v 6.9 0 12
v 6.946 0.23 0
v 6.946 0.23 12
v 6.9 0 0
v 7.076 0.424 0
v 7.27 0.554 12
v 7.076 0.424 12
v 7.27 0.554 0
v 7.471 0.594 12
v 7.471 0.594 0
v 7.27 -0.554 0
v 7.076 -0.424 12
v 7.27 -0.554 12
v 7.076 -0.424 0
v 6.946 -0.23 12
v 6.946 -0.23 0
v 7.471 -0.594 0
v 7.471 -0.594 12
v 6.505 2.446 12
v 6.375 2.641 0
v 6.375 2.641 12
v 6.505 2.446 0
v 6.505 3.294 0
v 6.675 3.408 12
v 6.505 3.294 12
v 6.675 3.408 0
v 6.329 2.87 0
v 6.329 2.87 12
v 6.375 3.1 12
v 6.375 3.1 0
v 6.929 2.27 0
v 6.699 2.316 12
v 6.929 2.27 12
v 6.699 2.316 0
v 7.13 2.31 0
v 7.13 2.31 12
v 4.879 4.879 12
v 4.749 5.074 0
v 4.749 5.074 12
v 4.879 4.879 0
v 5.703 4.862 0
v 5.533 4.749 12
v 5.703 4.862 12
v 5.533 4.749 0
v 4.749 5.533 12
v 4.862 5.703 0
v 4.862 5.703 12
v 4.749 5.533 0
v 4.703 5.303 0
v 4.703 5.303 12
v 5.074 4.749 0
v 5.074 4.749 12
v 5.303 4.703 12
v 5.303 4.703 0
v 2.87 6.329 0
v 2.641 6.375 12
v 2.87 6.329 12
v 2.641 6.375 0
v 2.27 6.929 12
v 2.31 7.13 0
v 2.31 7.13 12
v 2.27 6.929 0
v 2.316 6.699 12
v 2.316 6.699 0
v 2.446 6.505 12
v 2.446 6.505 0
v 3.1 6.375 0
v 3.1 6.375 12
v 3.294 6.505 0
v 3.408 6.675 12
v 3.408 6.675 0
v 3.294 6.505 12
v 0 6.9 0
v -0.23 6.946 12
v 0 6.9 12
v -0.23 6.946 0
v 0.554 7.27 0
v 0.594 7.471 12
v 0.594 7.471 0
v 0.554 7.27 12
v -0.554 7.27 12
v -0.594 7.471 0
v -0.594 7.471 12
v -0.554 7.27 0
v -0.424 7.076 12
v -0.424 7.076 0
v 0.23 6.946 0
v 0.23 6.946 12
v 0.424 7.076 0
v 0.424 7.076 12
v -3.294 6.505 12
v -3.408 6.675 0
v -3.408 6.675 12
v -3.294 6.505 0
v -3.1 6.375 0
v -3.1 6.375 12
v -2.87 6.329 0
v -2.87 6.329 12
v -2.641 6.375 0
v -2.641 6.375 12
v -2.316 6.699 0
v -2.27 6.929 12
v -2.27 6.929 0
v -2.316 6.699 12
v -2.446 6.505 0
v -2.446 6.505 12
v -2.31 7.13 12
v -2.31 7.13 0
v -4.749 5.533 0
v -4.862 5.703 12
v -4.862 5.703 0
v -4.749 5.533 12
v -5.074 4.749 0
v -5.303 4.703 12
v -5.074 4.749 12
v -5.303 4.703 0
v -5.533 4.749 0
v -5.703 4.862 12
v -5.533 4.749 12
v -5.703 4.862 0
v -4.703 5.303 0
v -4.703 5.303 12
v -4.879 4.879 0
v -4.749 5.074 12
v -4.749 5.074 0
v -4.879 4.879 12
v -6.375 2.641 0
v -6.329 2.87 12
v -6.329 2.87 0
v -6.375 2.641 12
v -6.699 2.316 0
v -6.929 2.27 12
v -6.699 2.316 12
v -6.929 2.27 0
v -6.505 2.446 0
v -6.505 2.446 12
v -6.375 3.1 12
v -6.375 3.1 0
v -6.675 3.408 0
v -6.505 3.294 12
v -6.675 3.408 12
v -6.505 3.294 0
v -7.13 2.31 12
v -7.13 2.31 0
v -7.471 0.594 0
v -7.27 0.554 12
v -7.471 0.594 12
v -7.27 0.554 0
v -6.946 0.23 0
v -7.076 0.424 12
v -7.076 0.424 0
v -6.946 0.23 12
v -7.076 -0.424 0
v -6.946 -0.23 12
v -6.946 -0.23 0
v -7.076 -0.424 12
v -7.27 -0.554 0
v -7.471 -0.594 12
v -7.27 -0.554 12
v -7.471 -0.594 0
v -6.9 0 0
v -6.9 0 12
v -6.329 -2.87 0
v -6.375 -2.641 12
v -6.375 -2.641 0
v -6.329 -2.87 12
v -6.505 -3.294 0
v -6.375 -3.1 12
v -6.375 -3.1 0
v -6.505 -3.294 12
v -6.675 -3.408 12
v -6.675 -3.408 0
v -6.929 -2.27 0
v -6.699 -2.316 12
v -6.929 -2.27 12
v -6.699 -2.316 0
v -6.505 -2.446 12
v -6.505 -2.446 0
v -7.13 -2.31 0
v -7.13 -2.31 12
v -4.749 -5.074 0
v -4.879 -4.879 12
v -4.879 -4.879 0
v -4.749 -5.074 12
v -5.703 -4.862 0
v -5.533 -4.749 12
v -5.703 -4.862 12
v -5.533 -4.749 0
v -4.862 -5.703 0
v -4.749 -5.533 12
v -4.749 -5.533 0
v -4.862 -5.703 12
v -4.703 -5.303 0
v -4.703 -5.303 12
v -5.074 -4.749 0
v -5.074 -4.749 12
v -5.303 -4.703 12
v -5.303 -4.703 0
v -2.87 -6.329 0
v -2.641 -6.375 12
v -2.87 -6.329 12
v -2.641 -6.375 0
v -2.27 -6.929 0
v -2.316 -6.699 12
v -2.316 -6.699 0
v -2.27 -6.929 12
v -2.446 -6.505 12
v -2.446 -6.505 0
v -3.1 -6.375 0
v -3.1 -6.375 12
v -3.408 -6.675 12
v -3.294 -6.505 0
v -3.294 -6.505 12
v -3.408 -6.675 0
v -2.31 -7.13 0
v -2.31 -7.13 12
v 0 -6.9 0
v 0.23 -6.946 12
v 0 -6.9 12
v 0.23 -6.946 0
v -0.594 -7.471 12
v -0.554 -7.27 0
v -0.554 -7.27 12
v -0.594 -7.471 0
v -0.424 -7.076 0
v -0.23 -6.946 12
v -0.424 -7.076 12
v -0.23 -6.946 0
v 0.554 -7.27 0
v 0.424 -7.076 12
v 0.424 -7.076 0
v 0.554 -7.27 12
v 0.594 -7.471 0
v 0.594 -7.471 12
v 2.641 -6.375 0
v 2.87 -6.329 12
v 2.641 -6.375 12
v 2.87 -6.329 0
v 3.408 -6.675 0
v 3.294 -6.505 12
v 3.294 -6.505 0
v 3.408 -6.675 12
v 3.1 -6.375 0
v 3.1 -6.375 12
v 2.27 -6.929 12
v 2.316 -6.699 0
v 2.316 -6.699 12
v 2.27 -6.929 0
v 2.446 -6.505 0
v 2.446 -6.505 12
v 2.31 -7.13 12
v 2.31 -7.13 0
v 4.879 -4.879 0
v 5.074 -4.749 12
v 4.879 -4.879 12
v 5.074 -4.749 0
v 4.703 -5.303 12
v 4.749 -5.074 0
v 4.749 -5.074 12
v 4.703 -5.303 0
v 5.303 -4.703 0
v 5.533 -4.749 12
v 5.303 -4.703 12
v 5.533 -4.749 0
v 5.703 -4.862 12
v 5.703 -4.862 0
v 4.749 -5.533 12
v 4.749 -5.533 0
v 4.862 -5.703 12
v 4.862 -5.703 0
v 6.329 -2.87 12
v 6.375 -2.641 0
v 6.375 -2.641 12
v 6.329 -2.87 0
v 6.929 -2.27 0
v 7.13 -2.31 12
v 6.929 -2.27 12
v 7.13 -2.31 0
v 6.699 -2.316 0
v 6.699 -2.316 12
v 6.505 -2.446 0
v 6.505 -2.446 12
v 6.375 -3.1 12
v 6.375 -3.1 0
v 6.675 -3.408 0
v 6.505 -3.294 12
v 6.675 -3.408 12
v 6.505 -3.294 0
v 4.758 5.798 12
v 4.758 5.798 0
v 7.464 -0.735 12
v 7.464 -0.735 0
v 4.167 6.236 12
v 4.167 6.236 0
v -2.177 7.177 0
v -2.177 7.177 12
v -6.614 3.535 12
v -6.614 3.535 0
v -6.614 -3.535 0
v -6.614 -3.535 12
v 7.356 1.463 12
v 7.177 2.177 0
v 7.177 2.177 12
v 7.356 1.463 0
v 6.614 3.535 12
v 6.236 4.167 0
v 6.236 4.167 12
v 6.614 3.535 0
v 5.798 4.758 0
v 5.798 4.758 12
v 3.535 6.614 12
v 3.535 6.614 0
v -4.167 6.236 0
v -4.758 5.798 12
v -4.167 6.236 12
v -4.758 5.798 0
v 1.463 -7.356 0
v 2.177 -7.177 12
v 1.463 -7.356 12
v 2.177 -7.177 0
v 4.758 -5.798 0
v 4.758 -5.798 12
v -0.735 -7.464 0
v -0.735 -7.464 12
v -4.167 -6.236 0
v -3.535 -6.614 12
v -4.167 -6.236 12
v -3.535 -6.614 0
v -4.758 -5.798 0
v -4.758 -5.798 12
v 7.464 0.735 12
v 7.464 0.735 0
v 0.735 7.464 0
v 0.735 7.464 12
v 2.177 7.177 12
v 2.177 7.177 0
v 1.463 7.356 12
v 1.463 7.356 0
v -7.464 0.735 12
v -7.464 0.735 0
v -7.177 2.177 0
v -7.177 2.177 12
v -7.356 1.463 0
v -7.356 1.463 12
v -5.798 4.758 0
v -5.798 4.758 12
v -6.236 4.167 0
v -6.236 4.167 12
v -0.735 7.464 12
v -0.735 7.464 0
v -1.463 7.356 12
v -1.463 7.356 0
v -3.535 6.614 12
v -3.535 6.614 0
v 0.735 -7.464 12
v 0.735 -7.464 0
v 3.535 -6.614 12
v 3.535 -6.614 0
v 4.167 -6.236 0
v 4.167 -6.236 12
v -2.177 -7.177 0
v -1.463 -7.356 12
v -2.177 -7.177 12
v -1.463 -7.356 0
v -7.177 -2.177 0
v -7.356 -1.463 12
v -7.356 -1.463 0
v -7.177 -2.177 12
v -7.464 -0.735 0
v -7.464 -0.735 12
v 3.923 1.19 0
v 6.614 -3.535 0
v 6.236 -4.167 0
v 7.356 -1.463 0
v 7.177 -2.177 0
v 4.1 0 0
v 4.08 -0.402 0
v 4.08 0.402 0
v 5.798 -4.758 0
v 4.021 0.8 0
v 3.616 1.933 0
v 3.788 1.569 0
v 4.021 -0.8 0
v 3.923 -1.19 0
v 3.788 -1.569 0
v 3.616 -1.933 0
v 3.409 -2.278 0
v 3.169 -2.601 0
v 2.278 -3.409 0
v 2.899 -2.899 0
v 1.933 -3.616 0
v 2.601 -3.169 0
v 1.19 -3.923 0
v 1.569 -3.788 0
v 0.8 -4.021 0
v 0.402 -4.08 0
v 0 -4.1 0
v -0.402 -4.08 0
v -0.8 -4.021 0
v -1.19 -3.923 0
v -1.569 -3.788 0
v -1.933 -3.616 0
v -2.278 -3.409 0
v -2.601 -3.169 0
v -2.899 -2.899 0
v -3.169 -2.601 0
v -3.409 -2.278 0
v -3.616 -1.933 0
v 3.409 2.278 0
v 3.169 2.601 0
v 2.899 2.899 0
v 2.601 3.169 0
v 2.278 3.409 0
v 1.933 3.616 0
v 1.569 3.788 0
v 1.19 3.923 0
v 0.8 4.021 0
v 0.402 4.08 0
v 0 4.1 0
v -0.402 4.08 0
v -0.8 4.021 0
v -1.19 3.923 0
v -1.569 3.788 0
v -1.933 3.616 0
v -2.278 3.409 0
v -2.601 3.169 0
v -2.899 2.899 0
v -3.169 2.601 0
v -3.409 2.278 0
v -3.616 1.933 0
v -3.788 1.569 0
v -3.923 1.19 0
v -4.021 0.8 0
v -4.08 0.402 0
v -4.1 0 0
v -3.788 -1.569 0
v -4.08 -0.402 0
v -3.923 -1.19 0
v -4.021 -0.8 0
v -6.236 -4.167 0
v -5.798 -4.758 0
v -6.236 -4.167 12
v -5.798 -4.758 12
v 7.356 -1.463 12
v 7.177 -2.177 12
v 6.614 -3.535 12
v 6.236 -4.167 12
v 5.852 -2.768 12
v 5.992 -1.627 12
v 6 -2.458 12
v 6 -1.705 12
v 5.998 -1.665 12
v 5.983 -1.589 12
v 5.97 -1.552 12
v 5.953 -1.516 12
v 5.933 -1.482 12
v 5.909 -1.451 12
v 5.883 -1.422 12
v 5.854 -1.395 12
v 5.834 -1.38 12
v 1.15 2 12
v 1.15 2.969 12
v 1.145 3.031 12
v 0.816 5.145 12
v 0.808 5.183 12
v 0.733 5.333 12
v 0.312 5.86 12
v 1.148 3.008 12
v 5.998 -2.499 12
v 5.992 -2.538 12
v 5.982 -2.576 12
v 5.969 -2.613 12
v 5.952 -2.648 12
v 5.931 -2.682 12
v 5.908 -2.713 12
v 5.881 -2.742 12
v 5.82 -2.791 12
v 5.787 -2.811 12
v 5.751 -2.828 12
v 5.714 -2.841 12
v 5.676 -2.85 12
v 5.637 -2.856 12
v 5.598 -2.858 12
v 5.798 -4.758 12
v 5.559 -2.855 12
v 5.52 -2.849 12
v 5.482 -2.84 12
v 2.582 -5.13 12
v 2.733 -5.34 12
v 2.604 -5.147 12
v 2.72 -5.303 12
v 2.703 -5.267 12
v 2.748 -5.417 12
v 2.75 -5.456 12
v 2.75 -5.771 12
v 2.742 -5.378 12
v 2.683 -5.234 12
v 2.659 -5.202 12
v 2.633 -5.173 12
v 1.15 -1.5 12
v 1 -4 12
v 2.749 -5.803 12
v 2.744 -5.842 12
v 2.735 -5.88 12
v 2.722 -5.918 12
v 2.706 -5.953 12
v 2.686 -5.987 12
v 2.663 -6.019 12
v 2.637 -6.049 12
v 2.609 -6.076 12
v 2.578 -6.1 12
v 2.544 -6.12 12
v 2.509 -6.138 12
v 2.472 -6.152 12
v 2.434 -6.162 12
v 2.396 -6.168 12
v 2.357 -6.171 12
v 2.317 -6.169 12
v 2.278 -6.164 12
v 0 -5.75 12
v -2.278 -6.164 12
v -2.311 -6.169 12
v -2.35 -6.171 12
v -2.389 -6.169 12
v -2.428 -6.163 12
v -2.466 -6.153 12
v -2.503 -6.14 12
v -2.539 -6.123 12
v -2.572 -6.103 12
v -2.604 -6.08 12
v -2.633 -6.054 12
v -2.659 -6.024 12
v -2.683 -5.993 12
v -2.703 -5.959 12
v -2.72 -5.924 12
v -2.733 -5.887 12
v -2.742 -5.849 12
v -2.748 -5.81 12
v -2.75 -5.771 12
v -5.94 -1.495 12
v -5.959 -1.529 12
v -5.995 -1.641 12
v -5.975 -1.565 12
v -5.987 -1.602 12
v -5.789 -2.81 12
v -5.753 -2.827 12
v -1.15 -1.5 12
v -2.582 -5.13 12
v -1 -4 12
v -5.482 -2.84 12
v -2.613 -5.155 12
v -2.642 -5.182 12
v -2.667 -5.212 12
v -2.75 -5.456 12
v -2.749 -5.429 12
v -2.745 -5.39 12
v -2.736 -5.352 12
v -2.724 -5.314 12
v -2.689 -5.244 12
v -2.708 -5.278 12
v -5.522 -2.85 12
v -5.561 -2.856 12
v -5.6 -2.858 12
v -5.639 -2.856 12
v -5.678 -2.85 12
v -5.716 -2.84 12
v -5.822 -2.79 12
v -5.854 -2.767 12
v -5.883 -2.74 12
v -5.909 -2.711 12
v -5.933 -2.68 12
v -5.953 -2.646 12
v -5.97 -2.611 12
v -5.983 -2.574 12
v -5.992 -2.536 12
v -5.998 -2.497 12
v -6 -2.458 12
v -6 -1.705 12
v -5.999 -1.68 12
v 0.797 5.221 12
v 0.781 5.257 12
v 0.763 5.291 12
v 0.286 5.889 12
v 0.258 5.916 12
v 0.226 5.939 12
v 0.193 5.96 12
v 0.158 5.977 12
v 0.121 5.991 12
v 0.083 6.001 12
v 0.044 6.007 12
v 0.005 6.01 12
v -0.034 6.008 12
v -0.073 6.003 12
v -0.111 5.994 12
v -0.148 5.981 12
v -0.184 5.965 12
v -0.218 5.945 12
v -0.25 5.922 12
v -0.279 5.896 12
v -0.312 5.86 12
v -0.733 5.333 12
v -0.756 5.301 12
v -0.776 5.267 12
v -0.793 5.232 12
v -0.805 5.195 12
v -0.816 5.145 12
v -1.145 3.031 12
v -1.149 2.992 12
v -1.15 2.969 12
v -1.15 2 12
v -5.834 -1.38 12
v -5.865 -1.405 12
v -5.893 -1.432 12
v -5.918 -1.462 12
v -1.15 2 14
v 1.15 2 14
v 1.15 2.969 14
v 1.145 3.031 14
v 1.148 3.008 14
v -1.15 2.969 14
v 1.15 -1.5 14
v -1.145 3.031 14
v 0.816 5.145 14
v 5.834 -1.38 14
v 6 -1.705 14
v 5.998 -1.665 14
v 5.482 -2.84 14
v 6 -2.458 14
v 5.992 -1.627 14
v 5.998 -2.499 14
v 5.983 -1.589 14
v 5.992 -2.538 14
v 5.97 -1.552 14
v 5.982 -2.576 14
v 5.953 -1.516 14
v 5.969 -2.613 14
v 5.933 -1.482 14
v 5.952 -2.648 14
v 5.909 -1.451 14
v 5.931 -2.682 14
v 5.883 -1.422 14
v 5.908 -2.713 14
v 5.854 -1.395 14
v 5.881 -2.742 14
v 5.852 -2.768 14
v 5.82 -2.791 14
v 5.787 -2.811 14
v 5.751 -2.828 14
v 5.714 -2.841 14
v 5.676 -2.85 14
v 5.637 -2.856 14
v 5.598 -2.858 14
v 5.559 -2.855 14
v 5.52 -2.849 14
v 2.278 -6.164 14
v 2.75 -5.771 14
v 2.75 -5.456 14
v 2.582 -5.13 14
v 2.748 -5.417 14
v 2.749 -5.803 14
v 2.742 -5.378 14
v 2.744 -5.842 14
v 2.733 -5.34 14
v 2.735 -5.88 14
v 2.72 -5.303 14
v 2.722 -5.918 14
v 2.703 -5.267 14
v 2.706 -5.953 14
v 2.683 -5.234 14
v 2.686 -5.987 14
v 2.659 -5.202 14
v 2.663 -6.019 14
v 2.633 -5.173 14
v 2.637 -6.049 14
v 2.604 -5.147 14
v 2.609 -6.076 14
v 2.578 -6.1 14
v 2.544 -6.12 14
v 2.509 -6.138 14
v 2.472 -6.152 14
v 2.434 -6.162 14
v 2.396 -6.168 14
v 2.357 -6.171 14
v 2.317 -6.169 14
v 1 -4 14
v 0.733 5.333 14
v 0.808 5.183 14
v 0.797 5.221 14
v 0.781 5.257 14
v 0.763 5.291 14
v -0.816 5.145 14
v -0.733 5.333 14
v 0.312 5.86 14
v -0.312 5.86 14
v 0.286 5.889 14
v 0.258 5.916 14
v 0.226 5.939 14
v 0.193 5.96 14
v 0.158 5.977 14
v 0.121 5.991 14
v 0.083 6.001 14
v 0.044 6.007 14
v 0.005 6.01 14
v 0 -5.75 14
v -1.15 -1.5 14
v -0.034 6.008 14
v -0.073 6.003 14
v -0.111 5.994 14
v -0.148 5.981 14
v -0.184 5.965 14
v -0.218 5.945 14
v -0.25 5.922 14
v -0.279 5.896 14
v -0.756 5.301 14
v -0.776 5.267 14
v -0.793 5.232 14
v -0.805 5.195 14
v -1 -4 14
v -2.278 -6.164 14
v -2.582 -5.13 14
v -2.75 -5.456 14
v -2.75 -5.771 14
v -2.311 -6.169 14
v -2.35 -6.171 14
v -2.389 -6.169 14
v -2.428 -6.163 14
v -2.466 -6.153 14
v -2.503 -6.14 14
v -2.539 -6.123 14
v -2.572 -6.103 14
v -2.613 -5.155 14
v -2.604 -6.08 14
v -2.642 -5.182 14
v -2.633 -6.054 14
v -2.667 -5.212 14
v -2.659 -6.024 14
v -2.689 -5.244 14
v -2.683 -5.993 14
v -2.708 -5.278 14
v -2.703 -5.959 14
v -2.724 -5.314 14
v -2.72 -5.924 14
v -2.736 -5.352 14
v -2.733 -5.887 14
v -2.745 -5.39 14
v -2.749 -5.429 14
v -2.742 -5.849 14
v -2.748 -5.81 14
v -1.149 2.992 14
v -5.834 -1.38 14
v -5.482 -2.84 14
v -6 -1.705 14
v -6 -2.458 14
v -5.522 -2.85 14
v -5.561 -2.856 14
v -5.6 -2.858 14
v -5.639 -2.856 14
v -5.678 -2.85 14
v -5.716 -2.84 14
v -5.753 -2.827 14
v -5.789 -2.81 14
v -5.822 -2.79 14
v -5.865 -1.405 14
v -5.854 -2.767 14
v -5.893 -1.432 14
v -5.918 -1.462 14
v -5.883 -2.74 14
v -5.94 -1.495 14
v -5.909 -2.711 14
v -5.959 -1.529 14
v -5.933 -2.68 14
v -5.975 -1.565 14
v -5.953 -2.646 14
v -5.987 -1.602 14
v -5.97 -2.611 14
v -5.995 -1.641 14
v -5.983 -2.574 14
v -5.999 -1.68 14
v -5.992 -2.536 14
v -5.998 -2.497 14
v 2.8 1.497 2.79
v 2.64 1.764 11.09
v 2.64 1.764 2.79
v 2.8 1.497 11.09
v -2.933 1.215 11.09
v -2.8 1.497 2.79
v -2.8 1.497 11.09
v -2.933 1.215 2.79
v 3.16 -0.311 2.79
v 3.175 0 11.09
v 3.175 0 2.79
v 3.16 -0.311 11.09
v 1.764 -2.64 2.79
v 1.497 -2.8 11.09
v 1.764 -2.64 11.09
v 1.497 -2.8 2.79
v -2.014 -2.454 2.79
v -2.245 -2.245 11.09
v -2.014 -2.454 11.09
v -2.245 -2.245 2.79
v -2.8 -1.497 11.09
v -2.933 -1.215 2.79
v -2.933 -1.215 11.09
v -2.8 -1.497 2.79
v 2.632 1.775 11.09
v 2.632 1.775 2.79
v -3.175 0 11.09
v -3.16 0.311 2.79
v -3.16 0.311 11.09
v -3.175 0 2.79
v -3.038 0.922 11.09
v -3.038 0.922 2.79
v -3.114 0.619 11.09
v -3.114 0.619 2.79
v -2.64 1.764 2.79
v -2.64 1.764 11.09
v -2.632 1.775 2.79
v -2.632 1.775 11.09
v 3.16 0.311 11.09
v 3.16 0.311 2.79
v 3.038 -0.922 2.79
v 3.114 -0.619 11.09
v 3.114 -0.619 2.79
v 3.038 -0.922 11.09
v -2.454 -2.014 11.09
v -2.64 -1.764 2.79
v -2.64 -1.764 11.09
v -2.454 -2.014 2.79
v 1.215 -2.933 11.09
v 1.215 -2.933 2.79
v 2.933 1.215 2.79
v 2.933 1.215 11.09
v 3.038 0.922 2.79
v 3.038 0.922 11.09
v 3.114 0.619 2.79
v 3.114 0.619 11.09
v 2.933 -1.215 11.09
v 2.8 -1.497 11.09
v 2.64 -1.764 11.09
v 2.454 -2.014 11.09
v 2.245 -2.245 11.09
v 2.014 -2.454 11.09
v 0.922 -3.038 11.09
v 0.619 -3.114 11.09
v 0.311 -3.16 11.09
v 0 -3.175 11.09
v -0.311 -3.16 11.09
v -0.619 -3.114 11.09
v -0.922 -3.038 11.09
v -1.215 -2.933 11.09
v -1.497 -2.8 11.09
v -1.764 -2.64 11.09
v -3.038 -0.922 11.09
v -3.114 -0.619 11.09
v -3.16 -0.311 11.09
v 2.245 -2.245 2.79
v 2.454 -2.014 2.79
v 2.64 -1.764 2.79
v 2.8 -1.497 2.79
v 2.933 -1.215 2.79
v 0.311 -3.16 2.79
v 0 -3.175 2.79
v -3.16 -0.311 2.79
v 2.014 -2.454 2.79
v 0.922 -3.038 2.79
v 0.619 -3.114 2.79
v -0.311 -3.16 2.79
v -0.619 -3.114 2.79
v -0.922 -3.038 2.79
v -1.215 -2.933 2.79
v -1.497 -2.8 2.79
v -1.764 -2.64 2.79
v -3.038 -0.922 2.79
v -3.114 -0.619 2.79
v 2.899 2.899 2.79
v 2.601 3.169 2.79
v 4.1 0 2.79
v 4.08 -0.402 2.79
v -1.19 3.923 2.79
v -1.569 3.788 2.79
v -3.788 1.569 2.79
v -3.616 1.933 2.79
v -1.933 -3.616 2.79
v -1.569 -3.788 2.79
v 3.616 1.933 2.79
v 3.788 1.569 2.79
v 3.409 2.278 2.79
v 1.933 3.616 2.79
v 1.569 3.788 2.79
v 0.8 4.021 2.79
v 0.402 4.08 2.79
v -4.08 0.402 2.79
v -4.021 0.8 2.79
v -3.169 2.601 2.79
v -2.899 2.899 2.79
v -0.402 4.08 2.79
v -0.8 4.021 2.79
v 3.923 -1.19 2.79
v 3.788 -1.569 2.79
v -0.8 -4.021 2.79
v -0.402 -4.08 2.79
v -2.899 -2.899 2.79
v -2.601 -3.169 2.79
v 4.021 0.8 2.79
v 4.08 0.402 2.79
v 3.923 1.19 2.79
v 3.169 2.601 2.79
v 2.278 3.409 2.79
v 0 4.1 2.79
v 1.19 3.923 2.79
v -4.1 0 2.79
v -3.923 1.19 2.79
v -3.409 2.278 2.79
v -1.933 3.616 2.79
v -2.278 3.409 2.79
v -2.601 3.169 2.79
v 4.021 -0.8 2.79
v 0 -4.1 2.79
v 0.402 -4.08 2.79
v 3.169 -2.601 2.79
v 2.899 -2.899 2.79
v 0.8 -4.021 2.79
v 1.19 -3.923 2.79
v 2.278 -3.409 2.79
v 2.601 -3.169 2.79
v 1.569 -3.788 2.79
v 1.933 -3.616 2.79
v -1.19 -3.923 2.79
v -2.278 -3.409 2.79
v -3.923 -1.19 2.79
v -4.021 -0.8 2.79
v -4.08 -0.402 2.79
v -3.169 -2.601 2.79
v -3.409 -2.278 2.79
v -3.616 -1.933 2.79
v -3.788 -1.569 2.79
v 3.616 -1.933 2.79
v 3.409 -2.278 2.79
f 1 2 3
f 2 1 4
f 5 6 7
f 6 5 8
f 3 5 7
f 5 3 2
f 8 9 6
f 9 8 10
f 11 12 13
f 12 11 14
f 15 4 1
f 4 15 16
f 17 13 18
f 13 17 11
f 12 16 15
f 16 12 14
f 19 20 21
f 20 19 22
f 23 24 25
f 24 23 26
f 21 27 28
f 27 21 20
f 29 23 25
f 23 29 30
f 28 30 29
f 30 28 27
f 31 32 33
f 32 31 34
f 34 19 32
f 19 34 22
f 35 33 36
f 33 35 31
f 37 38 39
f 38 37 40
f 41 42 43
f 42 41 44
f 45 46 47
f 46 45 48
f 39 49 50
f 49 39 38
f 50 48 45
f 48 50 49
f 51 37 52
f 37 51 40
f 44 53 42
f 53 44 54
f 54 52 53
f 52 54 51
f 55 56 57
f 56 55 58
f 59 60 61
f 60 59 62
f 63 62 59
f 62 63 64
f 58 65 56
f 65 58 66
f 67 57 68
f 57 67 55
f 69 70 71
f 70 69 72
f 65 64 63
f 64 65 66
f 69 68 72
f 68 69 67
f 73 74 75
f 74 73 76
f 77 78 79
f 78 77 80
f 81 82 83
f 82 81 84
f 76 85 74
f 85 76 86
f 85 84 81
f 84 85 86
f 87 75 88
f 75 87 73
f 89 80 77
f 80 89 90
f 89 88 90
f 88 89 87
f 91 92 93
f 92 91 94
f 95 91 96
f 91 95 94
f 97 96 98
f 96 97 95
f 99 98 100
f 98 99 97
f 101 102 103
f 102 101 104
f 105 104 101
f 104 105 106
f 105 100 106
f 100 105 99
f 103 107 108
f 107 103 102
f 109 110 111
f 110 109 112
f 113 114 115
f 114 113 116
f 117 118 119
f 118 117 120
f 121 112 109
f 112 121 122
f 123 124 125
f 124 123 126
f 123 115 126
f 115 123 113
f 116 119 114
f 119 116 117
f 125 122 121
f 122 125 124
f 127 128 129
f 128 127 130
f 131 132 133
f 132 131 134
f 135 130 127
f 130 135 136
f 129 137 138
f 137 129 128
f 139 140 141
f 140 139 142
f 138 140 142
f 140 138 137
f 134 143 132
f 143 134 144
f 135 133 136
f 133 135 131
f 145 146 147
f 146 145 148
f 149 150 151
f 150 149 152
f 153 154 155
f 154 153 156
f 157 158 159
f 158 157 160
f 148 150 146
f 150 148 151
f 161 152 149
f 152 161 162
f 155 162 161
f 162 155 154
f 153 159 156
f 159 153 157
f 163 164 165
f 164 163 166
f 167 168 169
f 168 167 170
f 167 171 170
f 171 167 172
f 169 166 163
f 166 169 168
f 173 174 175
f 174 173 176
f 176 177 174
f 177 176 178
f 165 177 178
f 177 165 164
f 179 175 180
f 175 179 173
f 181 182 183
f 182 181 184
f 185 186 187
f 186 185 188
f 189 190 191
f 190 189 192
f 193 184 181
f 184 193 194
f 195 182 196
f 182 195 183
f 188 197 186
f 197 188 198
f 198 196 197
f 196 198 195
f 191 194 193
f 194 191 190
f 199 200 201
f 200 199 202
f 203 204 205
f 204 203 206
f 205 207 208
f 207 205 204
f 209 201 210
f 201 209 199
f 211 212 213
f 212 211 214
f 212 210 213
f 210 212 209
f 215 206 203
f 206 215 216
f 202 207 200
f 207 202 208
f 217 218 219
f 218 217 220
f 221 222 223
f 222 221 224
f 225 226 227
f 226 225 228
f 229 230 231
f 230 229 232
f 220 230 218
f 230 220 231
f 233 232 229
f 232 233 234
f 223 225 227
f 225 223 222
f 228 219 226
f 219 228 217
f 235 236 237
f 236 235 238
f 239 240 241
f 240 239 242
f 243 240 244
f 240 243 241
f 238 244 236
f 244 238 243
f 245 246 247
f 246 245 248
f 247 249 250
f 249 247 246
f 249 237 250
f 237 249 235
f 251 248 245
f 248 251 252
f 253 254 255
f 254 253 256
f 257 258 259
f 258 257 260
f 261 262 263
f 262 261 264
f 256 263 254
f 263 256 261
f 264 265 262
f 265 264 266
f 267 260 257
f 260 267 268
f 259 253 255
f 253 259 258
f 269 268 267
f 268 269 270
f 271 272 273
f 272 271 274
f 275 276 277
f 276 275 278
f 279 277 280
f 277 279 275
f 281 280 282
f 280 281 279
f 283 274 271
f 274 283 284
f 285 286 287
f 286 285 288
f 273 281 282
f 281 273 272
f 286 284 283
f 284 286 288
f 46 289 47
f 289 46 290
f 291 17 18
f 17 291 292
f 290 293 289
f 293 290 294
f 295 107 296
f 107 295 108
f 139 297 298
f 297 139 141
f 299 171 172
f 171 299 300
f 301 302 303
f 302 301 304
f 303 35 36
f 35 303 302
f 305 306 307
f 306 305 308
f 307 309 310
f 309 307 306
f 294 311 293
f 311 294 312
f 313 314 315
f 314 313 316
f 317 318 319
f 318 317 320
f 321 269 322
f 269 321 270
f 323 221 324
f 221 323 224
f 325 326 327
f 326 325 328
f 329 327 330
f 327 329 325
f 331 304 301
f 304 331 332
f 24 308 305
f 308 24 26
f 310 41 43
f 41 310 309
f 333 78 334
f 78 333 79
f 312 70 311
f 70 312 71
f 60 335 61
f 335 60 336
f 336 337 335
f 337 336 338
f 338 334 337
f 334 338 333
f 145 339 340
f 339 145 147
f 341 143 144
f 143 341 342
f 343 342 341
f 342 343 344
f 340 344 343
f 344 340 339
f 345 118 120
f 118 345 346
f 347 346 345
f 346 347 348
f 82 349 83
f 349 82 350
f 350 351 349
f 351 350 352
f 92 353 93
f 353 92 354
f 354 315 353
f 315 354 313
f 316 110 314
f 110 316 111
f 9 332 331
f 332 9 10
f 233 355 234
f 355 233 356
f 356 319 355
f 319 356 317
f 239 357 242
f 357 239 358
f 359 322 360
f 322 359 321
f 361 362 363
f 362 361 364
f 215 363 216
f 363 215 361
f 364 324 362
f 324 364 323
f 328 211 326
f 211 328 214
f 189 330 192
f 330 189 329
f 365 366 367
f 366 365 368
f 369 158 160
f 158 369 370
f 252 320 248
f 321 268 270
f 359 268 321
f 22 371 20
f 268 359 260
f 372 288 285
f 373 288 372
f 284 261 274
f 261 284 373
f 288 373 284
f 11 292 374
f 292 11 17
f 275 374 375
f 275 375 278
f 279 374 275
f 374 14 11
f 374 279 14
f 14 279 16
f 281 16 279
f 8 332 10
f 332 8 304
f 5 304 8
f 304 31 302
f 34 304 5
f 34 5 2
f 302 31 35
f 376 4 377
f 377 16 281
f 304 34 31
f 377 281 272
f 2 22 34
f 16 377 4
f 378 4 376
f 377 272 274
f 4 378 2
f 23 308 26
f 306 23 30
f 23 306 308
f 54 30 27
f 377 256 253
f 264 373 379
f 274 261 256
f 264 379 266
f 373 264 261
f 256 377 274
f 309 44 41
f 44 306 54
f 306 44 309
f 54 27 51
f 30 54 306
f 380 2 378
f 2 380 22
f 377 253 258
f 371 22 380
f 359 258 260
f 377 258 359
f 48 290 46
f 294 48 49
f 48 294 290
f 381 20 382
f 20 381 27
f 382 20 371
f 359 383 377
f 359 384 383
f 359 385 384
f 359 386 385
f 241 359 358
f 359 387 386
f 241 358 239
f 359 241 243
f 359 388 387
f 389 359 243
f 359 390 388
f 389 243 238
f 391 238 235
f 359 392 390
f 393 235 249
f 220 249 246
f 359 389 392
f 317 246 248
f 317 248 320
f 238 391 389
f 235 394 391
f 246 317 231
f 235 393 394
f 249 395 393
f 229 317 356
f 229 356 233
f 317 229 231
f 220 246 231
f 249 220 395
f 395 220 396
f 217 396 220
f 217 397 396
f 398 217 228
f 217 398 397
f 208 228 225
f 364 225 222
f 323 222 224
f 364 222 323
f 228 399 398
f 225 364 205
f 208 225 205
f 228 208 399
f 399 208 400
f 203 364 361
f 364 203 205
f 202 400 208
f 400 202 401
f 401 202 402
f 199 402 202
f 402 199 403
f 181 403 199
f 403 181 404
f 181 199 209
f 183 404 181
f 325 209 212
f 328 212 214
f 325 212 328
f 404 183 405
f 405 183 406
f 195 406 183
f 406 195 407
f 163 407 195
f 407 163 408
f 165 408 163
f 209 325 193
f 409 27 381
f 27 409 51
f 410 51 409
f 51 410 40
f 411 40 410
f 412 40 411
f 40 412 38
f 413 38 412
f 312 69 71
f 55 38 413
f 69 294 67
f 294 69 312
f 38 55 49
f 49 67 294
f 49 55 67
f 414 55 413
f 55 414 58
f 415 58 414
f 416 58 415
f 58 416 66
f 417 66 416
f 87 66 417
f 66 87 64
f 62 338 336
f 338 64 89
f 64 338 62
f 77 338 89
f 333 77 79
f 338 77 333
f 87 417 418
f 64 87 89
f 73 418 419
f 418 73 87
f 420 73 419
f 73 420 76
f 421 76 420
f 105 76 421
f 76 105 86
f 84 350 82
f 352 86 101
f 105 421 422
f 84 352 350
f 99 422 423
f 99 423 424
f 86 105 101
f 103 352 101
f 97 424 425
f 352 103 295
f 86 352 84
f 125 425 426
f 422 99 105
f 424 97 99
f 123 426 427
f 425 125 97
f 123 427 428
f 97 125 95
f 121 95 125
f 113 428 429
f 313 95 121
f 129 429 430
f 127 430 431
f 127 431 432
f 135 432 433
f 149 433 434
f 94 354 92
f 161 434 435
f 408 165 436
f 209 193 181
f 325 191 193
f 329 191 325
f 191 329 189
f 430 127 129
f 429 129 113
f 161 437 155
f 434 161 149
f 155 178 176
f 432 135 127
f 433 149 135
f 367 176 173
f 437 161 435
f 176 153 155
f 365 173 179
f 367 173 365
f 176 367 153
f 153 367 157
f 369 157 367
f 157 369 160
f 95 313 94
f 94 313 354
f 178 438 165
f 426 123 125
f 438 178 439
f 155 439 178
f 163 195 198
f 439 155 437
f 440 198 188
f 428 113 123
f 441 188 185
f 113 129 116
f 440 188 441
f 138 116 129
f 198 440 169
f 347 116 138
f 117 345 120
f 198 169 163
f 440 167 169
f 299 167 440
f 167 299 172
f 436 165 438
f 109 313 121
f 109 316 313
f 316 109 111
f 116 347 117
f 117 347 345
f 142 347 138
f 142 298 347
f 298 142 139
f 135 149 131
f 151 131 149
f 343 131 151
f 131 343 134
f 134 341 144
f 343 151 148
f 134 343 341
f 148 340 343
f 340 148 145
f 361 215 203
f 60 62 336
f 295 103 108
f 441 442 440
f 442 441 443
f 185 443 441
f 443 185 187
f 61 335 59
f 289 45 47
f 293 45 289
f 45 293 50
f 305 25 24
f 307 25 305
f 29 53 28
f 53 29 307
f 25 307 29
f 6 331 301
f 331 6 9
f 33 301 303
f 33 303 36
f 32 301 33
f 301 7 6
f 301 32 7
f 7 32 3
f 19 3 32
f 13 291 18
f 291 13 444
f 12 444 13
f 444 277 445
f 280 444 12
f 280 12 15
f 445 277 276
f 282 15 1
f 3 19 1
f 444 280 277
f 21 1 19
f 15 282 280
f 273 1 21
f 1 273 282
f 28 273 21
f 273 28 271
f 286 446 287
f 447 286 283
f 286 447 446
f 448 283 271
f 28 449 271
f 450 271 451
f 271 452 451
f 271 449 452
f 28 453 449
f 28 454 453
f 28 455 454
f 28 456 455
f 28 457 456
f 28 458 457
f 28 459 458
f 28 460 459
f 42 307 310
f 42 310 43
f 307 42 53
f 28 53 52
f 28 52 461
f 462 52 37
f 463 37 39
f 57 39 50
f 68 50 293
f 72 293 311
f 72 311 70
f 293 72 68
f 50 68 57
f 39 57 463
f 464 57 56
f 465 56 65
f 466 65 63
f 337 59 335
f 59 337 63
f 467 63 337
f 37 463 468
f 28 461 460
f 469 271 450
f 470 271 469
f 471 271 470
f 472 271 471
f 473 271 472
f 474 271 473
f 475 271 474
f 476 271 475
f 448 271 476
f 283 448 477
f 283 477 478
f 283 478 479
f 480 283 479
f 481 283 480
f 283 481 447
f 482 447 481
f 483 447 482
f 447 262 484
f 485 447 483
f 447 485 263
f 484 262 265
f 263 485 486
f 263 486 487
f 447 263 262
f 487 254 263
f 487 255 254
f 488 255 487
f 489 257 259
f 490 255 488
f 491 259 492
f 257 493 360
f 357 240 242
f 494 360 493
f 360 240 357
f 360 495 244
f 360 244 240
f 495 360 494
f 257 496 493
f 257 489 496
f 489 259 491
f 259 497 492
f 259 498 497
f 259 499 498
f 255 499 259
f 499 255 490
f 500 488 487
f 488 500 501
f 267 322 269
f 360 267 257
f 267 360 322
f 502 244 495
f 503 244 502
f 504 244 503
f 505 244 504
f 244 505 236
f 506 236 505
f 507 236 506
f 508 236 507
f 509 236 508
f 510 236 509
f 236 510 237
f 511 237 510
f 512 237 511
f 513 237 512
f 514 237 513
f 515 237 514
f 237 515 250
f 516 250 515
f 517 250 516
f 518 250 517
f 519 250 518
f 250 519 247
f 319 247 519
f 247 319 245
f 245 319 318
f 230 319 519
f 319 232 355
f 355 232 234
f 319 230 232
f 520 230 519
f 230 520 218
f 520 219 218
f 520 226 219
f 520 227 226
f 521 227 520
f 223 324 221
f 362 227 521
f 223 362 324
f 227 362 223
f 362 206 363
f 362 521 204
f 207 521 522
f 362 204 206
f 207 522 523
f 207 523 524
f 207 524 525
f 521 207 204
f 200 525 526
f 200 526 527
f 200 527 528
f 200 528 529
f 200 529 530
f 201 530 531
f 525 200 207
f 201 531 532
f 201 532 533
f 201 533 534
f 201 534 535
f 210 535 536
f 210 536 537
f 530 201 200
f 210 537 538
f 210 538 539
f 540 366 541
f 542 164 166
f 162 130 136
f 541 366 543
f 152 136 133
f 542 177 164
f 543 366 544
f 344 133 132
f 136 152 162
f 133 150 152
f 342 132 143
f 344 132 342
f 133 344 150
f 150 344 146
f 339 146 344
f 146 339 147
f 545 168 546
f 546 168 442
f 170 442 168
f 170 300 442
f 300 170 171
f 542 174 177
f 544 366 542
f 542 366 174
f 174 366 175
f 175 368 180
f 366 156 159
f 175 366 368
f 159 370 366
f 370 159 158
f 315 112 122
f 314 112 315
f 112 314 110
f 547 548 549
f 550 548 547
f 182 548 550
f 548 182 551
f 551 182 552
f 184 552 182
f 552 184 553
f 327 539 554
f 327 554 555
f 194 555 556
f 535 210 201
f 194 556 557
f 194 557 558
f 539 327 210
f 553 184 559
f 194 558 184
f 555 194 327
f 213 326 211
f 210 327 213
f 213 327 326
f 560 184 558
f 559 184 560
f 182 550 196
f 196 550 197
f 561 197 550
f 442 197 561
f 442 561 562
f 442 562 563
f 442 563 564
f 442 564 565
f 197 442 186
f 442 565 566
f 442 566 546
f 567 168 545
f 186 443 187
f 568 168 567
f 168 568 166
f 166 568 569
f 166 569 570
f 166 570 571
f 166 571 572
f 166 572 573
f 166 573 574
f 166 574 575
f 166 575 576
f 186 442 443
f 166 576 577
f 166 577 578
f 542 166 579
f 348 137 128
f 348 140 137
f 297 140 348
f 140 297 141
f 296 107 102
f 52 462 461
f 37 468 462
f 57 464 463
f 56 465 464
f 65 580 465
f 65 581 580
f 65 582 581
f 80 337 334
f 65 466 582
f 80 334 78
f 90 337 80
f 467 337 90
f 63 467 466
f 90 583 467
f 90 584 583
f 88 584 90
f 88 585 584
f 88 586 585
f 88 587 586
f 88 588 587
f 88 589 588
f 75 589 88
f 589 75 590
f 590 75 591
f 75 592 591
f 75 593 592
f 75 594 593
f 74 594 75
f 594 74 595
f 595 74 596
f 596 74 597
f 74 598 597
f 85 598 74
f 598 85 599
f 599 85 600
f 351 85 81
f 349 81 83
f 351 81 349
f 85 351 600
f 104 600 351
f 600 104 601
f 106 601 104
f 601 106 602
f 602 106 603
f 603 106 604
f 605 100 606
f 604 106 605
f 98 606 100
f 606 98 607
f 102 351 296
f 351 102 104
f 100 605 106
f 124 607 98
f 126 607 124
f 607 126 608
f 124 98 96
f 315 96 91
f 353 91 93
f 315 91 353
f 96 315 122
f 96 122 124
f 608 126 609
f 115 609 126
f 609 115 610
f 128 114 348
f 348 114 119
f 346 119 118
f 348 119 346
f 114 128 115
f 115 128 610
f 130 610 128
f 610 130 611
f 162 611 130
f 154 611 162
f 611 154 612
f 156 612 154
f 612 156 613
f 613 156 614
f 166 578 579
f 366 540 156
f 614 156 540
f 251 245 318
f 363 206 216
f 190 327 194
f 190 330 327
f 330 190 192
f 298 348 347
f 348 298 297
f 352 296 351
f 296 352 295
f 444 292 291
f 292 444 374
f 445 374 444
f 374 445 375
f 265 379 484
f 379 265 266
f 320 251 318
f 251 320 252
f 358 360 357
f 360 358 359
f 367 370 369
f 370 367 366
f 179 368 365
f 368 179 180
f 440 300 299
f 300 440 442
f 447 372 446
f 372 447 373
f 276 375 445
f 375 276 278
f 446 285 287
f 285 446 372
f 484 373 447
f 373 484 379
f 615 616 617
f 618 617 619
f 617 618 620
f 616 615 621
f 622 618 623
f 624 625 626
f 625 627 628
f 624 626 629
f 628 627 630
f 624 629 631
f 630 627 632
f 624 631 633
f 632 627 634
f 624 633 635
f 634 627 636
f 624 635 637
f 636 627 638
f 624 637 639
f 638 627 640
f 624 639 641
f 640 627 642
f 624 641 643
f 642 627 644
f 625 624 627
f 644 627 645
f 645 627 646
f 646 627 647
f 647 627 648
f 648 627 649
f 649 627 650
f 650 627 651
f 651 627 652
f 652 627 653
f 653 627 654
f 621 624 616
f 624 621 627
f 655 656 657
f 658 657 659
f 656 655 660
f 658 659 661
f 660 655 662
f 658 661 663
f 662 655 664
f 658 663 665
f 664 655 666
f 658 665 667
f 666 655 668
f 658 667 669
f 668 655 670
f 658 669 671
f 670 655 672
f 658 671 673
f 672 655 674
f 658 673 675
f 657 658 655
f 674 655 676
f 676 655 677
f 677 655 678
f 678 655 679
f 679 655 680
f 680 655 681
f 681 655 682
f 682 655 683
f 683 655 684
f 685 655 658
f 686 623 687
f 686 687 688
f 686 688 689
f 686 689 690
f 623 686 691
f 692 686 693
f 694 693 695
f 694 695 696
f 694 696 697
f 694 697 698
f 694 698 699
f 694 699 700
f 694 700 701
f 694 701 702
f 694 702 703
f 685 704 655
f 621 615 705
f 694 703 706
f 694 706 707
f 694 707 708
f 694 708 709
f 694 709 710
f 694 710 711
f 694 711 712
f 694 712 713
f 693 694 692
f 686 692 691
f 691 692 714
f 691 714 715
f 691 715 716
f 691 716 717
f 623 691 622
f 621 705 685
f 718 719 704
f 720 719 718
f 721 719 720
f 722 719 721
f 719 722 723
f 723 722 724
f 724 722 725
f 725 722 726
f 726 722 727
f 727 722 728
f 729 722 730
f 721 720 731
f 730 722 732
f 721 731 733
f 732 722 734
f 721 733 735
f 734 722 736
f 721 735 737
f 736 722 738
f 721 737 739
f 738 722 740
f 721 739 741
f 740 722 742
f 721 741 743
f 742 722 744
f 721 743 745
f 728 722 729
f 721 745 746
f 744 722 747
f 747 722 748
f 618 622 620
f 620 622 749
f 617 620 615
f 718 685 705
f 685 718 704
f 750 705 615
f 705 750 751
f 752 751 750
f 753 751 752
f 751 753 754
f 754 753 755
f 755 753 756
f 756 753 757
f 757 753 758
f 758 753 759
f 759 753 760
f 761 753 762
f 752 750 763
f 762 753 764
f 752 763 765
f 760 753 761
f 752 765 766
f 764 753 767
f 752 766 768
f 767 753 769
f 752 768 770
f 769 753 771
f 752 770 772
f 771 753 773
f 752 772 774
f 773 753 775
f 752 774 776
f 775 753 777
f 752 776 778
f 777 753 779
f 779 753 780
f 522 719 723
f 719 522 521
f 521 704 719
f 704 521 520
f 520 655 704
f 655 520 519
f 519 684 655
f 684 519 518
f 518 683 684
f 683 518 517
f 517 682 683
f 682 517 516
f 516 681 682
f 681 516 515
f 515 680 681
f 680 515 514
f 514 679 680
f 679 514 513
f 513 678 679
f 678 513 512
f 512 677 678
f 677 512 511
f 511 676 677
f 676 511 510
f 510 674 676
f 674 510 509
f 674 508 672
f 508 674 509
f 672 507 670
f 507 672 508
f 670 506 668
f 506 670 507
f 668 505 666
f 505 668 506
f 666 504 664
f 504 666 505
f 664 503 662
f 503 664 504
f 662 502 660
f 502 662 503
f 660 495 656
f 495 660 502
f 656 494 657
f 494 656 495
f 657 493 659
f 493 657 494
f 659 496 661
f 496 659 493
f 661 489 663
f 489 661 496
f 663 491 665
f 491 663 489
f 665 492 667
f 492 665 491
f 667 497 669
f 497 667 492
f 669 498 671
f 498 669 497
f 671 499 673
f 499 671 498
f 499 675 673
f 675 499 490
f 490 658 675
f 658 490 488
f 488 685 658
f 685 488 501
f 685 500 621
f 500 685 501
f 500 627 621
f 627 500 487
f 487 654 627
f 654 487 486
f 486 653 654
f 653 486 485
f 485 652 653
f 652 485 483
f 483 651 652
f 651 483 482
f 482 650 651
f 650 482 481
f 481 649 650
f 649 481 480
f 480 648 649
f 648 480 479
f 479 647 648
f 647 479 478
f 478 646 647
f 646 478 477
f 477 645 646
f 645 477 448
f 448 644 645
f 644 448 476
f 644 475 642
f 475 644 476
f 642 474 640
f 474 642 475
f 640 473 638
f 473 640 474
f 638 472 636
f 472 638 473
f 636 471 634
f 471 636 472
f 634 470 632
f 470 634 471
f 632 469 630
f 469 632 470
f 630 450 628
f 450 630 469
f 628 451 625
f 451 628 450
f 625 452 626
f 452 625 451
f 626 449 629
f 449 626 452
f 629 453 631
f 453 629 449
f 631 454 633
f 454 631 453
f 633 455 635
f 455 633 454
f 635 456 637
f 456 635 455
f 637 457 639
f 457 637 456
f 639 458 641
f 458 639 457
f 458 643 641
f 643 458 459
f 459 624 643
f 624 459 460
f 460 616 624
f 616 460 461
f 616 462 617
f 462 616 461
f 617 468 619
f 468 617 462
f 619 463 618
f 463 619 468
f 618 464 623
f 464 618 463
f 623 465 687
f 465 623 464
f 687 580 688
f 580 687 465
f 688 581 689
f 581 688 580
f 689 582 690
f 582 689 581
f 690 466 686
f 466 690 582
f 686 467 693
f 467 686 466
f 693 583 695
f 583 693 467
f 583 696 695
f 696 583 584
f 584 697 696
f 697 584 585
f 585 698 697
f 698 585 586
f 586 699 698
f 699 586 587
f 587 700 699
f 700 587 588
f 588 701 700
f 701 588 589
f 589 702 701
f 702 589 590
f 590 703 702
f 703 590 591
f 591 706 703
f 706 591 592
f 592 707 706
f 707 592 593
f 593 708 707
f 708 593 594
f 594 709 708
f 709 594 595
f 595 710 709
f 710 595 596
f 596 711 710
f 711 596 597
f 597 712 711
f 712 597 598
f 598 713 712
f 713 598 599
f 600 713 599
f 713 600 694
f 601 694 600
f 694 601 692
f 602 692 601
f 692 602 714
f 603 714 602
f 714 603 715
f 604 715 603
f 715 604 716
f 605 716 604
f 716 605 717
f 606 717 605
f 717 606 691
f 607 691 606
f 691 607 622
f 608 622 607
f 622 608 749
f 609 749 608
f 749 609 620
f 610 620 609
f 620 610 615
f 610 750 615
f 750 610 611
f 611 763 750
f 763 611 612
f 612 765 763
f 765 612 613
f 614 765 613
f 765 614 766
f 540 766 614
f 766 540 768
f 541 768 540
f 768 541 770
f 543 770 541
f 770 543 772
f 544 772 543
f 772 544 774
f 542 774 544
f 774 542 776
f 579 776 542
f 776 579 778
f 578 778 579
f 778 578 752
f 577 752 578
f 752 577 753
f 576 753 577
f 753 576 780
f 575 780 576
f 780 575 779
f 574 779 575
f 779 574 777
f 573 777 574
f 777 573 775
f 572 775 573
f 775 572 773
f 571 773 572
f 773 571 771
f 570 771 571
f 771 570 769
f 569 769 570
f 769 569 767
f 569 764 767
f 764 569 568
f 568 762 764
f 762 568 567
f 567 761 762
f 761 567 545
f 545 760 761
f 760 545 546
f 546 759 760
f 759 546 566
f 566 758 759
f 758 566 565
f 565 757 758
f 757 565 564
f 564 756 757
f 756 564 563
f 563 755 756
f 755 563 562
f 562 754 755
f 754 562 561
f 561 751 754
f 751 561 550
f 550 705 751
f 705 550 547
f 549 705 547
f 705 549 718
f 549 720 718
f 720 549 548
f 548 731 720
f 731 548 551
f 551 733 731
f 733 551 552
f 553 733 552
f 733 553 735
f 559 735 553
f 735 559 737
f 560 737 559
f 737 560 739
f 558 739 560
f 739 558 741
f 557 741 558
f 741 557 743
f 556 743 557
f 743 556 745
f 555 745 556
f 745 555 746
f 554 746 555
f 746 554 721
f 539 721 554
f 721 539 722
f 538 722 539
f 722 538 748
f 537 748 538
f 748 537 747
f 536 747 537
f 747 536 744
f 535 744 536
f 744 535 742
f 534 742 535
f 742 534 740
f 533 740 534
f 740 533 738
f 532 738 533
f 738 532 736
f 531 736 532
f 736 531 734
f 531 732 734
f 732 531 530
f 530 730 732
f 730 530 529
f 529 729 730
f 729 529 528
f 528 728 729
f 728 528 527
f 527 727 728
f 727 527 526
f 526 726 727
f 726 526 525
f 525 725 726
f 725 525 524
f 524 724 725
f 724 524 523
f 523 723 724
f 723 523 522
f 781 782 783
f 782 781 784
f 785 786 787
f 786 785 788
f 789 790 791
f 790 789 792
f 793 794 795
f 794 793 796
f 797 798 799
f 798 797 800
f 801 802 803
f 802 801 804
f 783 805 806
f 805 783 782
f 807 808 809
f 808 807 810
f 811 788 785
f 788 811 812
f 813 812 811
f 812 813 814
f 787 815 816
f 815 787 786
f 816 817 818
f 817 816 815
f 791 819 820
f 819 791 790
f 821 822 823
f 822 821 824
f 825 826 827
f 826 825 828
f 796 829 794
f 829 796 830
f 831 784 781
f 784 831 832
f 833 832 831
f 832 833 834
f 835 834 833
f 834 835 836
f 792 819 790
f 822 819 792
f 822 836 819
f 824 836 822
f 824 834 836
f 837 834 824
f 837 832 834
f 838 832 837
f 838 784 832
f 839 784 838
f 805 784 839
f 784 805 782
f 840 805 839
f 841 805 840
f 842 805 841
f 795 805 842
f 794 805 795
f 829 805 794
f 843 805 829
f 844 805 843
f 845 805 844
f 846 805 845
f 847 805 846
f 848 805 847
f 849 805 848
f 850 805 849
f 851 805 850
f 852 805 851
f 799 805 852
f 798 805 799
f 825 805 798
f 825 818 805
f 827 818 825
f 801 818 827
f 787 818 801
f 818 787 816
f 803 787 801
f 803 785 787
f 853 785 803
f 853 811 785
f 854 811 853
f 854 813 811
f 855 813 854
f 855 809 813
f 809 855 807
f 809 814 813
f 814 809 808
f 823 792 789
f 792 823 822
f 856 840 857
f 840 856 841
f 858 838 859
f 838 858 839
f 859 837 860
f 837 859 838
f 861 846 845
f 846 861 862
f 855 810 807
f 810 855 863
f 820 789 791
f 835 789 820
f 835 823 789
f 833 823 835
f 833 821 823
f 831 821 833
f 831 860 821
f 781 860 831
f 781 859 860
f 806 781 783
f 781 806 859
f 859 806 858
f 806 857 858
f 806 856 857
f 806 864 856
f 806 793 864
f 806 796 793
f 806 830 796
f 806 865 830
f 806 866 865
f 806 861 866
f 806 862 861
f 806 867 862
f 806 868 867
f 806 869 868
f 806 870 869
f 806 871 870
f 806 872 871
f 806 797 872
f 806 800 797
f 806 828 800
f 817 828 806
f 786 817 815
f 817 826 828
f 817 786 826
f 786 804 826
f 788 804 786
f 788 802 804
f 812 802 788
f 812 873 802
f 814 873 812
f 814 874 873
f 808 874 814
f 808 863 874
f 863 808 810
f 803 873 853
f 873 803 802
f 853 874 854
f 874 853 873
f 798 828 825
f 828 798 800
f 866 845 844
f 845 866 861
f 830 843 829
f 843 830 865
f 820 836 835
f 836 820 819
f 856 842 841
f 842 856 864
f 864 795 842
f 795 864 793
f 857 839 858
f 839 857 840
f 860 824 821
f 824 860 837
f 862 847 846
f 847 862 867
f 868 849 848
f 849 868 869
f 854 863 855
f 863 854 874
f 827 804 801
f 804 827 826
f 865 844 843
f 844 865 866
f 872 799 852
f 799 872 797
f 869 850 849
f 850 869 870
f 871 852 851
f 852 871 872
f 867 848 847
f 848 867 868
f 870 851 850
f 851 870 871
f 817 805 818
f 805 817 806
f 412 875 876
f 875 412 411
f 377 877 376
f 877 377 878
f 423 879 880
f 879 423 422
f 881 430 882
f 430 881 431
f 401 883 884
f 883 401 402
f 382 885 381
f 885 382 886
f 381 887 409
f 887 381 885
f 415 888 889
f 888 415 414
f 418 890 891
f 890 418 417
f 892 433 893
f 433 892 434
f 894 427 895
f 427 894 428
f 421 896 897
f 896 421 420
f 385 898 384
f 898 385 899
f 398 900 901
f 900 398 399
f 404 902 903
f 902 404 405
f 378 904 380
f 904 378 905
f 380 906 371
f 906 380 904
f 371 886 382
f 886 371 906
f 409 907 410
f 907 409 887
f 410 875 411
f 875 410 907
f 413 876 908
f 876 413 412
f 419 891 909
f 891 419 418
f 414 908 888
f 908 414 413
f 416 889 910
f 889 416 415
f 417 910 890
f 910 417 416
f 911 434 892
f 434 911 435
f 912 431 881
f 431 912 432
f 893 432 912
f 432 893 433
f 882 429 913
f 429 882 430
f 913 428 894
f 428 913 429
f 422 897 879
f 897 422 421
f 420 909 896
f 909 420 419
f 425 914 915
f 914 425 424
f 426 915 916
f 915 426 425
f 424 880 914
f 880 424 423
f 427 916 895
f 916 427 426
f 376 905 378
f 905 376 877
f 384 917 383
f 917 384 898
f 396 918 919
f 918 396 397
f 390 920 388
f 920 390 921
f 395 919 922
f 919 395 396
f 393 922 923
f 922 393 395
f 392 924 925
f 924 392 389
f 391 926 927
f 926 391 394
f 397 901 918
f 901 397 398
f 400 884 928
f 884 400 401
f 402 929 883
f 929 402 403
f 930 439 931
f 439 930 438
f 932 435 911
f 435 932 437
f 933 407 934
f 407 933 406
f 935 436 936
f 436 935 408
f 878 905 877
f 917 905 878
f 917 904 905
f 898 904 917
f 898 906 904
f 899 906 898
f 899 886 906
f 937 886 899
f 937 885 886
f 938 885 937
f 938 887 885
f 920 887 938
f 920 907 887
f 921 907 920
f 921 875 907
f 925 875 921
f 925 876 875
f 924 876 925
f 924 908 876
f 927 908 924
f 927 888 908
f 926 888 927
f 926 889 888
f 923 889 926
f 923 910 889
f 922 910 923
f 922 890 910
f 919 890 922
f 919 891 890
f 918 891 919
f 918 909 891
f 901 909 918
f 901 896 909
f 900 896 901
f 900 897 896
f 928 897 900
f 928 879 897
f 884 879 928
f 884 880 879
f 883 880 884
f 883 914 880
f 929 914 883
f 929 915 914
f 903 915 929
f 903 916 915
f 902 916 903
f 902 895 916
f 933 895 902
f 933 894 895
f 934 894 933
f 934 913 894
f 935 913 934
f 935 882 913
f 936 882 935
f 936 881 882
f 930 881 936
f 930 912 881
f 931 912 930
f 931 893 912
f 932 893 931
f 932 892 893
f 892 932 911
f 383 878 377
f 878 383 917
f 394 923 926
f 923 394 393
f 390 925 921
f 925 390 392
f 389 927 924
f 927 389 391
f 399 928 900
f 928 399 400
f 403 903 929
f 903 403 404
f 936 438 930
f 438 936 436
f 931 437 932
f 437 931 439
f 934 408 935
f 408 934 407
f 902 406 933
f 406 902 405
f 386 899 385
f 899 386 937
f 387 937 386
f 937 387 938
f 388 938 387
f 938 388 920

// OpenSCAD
// Airplane knob for the KY-040 rotary encoder (6 mm D-shaft).
// Print upside-down? No: print as-is, flat base down, plane on top (no supports needed).
// If the fit is loose/tight, adjust `fit` (0.1 = snug press fit on most printers).

$fn = 64;
e = 0.01;

shaft_d    = 6.0;   // KY-040 shaft diameter
shaft_flat = 4.6;   // across-flats distance of the D (flat to opposite side)
shaft_len  = 8;     // exposed shaft above the bushing (per listing)
bush_d     = 7.0;   // threaded bushing diameter (M7)
bush_h     = 3.0;   // bushing protrusion above the front face (~6 mm bushing - 3 mm face plate; MEASURE)
gap        = 0.6;   // knob underside to front face (keep > 0 so it spins freely)
bore_clr   = 1.2;   // extra diameter on the bushing bore
fit        = 0.35;  // added clearance on the socket (was 0.1: too tight)

knob_d   = 15;      // grip body diameter
knob_h   = 12;      // grip body height (measured from its underside, which sits `gap` above the face)
ribs     = 16;      // knurl count
rib_d    = 1.2;     // knurl groove diameter
plane_h  = 2.0;     // raised airplane height above the top face
plane_scale = 0.5;  // silhouette is drawn ~24 mm wide; scaled to fit the knob
nose_ang = 0;       // rotate the plane so the nose points where you want at "12 o'clock"

// Airplane silhouette, top view, nose toward +Y, fits in ~24 x 24 mm.
module plane_2d() {
    half = [[0,12.5],[1.6,10.5],[2.3,6],[2.3,4],[12,-3],[12,-6],[2.3,-3],
            [2.0,-8],[5.5,-10.5],[5.5,-12.5],[0,-11.5]];
    offset(r=0.8) offset(delta=-0.8)
    polygon(concat(half, [for (i = [len(half)-1:-1:0]) [-half[i][0], half[i][1]]]));
}

// Underside bore swallows the bushing so the knob sits nearly flush on the front face.
bore_h = bush_h - gap + 0.4;
module bushing_bore() { cylinder(d=bush_d + bore_clr, h=bore_h); }

module d_socket() {
    d = shaft_d + fit;
    f = shaft_flat + fit;
    intersection() {
        cylinder(d=d, h=shaft_len + 0.3);
        translate([-d/2 - e, -d/2 - e, 0]) cube([d + 2*e, f + e, shaft_len + 0.3]);
    }
}

difference() {
    union() {
        // grip body with a soft top edge
        difference() {
            cylinder(d=knob_d, h=knob_h);
            for (i = [0:ribs-1]) rotate(i*360/ribs)
                translate([knob_d/2, 0, -e]) cylinder(d=rib_d, h=knob_h + 2*e, $fn=16);
        }
        // raised airplane
        translate([0, 0, knob_h - e]) rotate(nose_ang)
            linear_extrude(plane_h + e) scale(plane_scale) plane_2d();
    }
    translate([0, 0, -e]) bushing_bore();
    translate([0, 0, bore_h - e]) d_socket();
}
